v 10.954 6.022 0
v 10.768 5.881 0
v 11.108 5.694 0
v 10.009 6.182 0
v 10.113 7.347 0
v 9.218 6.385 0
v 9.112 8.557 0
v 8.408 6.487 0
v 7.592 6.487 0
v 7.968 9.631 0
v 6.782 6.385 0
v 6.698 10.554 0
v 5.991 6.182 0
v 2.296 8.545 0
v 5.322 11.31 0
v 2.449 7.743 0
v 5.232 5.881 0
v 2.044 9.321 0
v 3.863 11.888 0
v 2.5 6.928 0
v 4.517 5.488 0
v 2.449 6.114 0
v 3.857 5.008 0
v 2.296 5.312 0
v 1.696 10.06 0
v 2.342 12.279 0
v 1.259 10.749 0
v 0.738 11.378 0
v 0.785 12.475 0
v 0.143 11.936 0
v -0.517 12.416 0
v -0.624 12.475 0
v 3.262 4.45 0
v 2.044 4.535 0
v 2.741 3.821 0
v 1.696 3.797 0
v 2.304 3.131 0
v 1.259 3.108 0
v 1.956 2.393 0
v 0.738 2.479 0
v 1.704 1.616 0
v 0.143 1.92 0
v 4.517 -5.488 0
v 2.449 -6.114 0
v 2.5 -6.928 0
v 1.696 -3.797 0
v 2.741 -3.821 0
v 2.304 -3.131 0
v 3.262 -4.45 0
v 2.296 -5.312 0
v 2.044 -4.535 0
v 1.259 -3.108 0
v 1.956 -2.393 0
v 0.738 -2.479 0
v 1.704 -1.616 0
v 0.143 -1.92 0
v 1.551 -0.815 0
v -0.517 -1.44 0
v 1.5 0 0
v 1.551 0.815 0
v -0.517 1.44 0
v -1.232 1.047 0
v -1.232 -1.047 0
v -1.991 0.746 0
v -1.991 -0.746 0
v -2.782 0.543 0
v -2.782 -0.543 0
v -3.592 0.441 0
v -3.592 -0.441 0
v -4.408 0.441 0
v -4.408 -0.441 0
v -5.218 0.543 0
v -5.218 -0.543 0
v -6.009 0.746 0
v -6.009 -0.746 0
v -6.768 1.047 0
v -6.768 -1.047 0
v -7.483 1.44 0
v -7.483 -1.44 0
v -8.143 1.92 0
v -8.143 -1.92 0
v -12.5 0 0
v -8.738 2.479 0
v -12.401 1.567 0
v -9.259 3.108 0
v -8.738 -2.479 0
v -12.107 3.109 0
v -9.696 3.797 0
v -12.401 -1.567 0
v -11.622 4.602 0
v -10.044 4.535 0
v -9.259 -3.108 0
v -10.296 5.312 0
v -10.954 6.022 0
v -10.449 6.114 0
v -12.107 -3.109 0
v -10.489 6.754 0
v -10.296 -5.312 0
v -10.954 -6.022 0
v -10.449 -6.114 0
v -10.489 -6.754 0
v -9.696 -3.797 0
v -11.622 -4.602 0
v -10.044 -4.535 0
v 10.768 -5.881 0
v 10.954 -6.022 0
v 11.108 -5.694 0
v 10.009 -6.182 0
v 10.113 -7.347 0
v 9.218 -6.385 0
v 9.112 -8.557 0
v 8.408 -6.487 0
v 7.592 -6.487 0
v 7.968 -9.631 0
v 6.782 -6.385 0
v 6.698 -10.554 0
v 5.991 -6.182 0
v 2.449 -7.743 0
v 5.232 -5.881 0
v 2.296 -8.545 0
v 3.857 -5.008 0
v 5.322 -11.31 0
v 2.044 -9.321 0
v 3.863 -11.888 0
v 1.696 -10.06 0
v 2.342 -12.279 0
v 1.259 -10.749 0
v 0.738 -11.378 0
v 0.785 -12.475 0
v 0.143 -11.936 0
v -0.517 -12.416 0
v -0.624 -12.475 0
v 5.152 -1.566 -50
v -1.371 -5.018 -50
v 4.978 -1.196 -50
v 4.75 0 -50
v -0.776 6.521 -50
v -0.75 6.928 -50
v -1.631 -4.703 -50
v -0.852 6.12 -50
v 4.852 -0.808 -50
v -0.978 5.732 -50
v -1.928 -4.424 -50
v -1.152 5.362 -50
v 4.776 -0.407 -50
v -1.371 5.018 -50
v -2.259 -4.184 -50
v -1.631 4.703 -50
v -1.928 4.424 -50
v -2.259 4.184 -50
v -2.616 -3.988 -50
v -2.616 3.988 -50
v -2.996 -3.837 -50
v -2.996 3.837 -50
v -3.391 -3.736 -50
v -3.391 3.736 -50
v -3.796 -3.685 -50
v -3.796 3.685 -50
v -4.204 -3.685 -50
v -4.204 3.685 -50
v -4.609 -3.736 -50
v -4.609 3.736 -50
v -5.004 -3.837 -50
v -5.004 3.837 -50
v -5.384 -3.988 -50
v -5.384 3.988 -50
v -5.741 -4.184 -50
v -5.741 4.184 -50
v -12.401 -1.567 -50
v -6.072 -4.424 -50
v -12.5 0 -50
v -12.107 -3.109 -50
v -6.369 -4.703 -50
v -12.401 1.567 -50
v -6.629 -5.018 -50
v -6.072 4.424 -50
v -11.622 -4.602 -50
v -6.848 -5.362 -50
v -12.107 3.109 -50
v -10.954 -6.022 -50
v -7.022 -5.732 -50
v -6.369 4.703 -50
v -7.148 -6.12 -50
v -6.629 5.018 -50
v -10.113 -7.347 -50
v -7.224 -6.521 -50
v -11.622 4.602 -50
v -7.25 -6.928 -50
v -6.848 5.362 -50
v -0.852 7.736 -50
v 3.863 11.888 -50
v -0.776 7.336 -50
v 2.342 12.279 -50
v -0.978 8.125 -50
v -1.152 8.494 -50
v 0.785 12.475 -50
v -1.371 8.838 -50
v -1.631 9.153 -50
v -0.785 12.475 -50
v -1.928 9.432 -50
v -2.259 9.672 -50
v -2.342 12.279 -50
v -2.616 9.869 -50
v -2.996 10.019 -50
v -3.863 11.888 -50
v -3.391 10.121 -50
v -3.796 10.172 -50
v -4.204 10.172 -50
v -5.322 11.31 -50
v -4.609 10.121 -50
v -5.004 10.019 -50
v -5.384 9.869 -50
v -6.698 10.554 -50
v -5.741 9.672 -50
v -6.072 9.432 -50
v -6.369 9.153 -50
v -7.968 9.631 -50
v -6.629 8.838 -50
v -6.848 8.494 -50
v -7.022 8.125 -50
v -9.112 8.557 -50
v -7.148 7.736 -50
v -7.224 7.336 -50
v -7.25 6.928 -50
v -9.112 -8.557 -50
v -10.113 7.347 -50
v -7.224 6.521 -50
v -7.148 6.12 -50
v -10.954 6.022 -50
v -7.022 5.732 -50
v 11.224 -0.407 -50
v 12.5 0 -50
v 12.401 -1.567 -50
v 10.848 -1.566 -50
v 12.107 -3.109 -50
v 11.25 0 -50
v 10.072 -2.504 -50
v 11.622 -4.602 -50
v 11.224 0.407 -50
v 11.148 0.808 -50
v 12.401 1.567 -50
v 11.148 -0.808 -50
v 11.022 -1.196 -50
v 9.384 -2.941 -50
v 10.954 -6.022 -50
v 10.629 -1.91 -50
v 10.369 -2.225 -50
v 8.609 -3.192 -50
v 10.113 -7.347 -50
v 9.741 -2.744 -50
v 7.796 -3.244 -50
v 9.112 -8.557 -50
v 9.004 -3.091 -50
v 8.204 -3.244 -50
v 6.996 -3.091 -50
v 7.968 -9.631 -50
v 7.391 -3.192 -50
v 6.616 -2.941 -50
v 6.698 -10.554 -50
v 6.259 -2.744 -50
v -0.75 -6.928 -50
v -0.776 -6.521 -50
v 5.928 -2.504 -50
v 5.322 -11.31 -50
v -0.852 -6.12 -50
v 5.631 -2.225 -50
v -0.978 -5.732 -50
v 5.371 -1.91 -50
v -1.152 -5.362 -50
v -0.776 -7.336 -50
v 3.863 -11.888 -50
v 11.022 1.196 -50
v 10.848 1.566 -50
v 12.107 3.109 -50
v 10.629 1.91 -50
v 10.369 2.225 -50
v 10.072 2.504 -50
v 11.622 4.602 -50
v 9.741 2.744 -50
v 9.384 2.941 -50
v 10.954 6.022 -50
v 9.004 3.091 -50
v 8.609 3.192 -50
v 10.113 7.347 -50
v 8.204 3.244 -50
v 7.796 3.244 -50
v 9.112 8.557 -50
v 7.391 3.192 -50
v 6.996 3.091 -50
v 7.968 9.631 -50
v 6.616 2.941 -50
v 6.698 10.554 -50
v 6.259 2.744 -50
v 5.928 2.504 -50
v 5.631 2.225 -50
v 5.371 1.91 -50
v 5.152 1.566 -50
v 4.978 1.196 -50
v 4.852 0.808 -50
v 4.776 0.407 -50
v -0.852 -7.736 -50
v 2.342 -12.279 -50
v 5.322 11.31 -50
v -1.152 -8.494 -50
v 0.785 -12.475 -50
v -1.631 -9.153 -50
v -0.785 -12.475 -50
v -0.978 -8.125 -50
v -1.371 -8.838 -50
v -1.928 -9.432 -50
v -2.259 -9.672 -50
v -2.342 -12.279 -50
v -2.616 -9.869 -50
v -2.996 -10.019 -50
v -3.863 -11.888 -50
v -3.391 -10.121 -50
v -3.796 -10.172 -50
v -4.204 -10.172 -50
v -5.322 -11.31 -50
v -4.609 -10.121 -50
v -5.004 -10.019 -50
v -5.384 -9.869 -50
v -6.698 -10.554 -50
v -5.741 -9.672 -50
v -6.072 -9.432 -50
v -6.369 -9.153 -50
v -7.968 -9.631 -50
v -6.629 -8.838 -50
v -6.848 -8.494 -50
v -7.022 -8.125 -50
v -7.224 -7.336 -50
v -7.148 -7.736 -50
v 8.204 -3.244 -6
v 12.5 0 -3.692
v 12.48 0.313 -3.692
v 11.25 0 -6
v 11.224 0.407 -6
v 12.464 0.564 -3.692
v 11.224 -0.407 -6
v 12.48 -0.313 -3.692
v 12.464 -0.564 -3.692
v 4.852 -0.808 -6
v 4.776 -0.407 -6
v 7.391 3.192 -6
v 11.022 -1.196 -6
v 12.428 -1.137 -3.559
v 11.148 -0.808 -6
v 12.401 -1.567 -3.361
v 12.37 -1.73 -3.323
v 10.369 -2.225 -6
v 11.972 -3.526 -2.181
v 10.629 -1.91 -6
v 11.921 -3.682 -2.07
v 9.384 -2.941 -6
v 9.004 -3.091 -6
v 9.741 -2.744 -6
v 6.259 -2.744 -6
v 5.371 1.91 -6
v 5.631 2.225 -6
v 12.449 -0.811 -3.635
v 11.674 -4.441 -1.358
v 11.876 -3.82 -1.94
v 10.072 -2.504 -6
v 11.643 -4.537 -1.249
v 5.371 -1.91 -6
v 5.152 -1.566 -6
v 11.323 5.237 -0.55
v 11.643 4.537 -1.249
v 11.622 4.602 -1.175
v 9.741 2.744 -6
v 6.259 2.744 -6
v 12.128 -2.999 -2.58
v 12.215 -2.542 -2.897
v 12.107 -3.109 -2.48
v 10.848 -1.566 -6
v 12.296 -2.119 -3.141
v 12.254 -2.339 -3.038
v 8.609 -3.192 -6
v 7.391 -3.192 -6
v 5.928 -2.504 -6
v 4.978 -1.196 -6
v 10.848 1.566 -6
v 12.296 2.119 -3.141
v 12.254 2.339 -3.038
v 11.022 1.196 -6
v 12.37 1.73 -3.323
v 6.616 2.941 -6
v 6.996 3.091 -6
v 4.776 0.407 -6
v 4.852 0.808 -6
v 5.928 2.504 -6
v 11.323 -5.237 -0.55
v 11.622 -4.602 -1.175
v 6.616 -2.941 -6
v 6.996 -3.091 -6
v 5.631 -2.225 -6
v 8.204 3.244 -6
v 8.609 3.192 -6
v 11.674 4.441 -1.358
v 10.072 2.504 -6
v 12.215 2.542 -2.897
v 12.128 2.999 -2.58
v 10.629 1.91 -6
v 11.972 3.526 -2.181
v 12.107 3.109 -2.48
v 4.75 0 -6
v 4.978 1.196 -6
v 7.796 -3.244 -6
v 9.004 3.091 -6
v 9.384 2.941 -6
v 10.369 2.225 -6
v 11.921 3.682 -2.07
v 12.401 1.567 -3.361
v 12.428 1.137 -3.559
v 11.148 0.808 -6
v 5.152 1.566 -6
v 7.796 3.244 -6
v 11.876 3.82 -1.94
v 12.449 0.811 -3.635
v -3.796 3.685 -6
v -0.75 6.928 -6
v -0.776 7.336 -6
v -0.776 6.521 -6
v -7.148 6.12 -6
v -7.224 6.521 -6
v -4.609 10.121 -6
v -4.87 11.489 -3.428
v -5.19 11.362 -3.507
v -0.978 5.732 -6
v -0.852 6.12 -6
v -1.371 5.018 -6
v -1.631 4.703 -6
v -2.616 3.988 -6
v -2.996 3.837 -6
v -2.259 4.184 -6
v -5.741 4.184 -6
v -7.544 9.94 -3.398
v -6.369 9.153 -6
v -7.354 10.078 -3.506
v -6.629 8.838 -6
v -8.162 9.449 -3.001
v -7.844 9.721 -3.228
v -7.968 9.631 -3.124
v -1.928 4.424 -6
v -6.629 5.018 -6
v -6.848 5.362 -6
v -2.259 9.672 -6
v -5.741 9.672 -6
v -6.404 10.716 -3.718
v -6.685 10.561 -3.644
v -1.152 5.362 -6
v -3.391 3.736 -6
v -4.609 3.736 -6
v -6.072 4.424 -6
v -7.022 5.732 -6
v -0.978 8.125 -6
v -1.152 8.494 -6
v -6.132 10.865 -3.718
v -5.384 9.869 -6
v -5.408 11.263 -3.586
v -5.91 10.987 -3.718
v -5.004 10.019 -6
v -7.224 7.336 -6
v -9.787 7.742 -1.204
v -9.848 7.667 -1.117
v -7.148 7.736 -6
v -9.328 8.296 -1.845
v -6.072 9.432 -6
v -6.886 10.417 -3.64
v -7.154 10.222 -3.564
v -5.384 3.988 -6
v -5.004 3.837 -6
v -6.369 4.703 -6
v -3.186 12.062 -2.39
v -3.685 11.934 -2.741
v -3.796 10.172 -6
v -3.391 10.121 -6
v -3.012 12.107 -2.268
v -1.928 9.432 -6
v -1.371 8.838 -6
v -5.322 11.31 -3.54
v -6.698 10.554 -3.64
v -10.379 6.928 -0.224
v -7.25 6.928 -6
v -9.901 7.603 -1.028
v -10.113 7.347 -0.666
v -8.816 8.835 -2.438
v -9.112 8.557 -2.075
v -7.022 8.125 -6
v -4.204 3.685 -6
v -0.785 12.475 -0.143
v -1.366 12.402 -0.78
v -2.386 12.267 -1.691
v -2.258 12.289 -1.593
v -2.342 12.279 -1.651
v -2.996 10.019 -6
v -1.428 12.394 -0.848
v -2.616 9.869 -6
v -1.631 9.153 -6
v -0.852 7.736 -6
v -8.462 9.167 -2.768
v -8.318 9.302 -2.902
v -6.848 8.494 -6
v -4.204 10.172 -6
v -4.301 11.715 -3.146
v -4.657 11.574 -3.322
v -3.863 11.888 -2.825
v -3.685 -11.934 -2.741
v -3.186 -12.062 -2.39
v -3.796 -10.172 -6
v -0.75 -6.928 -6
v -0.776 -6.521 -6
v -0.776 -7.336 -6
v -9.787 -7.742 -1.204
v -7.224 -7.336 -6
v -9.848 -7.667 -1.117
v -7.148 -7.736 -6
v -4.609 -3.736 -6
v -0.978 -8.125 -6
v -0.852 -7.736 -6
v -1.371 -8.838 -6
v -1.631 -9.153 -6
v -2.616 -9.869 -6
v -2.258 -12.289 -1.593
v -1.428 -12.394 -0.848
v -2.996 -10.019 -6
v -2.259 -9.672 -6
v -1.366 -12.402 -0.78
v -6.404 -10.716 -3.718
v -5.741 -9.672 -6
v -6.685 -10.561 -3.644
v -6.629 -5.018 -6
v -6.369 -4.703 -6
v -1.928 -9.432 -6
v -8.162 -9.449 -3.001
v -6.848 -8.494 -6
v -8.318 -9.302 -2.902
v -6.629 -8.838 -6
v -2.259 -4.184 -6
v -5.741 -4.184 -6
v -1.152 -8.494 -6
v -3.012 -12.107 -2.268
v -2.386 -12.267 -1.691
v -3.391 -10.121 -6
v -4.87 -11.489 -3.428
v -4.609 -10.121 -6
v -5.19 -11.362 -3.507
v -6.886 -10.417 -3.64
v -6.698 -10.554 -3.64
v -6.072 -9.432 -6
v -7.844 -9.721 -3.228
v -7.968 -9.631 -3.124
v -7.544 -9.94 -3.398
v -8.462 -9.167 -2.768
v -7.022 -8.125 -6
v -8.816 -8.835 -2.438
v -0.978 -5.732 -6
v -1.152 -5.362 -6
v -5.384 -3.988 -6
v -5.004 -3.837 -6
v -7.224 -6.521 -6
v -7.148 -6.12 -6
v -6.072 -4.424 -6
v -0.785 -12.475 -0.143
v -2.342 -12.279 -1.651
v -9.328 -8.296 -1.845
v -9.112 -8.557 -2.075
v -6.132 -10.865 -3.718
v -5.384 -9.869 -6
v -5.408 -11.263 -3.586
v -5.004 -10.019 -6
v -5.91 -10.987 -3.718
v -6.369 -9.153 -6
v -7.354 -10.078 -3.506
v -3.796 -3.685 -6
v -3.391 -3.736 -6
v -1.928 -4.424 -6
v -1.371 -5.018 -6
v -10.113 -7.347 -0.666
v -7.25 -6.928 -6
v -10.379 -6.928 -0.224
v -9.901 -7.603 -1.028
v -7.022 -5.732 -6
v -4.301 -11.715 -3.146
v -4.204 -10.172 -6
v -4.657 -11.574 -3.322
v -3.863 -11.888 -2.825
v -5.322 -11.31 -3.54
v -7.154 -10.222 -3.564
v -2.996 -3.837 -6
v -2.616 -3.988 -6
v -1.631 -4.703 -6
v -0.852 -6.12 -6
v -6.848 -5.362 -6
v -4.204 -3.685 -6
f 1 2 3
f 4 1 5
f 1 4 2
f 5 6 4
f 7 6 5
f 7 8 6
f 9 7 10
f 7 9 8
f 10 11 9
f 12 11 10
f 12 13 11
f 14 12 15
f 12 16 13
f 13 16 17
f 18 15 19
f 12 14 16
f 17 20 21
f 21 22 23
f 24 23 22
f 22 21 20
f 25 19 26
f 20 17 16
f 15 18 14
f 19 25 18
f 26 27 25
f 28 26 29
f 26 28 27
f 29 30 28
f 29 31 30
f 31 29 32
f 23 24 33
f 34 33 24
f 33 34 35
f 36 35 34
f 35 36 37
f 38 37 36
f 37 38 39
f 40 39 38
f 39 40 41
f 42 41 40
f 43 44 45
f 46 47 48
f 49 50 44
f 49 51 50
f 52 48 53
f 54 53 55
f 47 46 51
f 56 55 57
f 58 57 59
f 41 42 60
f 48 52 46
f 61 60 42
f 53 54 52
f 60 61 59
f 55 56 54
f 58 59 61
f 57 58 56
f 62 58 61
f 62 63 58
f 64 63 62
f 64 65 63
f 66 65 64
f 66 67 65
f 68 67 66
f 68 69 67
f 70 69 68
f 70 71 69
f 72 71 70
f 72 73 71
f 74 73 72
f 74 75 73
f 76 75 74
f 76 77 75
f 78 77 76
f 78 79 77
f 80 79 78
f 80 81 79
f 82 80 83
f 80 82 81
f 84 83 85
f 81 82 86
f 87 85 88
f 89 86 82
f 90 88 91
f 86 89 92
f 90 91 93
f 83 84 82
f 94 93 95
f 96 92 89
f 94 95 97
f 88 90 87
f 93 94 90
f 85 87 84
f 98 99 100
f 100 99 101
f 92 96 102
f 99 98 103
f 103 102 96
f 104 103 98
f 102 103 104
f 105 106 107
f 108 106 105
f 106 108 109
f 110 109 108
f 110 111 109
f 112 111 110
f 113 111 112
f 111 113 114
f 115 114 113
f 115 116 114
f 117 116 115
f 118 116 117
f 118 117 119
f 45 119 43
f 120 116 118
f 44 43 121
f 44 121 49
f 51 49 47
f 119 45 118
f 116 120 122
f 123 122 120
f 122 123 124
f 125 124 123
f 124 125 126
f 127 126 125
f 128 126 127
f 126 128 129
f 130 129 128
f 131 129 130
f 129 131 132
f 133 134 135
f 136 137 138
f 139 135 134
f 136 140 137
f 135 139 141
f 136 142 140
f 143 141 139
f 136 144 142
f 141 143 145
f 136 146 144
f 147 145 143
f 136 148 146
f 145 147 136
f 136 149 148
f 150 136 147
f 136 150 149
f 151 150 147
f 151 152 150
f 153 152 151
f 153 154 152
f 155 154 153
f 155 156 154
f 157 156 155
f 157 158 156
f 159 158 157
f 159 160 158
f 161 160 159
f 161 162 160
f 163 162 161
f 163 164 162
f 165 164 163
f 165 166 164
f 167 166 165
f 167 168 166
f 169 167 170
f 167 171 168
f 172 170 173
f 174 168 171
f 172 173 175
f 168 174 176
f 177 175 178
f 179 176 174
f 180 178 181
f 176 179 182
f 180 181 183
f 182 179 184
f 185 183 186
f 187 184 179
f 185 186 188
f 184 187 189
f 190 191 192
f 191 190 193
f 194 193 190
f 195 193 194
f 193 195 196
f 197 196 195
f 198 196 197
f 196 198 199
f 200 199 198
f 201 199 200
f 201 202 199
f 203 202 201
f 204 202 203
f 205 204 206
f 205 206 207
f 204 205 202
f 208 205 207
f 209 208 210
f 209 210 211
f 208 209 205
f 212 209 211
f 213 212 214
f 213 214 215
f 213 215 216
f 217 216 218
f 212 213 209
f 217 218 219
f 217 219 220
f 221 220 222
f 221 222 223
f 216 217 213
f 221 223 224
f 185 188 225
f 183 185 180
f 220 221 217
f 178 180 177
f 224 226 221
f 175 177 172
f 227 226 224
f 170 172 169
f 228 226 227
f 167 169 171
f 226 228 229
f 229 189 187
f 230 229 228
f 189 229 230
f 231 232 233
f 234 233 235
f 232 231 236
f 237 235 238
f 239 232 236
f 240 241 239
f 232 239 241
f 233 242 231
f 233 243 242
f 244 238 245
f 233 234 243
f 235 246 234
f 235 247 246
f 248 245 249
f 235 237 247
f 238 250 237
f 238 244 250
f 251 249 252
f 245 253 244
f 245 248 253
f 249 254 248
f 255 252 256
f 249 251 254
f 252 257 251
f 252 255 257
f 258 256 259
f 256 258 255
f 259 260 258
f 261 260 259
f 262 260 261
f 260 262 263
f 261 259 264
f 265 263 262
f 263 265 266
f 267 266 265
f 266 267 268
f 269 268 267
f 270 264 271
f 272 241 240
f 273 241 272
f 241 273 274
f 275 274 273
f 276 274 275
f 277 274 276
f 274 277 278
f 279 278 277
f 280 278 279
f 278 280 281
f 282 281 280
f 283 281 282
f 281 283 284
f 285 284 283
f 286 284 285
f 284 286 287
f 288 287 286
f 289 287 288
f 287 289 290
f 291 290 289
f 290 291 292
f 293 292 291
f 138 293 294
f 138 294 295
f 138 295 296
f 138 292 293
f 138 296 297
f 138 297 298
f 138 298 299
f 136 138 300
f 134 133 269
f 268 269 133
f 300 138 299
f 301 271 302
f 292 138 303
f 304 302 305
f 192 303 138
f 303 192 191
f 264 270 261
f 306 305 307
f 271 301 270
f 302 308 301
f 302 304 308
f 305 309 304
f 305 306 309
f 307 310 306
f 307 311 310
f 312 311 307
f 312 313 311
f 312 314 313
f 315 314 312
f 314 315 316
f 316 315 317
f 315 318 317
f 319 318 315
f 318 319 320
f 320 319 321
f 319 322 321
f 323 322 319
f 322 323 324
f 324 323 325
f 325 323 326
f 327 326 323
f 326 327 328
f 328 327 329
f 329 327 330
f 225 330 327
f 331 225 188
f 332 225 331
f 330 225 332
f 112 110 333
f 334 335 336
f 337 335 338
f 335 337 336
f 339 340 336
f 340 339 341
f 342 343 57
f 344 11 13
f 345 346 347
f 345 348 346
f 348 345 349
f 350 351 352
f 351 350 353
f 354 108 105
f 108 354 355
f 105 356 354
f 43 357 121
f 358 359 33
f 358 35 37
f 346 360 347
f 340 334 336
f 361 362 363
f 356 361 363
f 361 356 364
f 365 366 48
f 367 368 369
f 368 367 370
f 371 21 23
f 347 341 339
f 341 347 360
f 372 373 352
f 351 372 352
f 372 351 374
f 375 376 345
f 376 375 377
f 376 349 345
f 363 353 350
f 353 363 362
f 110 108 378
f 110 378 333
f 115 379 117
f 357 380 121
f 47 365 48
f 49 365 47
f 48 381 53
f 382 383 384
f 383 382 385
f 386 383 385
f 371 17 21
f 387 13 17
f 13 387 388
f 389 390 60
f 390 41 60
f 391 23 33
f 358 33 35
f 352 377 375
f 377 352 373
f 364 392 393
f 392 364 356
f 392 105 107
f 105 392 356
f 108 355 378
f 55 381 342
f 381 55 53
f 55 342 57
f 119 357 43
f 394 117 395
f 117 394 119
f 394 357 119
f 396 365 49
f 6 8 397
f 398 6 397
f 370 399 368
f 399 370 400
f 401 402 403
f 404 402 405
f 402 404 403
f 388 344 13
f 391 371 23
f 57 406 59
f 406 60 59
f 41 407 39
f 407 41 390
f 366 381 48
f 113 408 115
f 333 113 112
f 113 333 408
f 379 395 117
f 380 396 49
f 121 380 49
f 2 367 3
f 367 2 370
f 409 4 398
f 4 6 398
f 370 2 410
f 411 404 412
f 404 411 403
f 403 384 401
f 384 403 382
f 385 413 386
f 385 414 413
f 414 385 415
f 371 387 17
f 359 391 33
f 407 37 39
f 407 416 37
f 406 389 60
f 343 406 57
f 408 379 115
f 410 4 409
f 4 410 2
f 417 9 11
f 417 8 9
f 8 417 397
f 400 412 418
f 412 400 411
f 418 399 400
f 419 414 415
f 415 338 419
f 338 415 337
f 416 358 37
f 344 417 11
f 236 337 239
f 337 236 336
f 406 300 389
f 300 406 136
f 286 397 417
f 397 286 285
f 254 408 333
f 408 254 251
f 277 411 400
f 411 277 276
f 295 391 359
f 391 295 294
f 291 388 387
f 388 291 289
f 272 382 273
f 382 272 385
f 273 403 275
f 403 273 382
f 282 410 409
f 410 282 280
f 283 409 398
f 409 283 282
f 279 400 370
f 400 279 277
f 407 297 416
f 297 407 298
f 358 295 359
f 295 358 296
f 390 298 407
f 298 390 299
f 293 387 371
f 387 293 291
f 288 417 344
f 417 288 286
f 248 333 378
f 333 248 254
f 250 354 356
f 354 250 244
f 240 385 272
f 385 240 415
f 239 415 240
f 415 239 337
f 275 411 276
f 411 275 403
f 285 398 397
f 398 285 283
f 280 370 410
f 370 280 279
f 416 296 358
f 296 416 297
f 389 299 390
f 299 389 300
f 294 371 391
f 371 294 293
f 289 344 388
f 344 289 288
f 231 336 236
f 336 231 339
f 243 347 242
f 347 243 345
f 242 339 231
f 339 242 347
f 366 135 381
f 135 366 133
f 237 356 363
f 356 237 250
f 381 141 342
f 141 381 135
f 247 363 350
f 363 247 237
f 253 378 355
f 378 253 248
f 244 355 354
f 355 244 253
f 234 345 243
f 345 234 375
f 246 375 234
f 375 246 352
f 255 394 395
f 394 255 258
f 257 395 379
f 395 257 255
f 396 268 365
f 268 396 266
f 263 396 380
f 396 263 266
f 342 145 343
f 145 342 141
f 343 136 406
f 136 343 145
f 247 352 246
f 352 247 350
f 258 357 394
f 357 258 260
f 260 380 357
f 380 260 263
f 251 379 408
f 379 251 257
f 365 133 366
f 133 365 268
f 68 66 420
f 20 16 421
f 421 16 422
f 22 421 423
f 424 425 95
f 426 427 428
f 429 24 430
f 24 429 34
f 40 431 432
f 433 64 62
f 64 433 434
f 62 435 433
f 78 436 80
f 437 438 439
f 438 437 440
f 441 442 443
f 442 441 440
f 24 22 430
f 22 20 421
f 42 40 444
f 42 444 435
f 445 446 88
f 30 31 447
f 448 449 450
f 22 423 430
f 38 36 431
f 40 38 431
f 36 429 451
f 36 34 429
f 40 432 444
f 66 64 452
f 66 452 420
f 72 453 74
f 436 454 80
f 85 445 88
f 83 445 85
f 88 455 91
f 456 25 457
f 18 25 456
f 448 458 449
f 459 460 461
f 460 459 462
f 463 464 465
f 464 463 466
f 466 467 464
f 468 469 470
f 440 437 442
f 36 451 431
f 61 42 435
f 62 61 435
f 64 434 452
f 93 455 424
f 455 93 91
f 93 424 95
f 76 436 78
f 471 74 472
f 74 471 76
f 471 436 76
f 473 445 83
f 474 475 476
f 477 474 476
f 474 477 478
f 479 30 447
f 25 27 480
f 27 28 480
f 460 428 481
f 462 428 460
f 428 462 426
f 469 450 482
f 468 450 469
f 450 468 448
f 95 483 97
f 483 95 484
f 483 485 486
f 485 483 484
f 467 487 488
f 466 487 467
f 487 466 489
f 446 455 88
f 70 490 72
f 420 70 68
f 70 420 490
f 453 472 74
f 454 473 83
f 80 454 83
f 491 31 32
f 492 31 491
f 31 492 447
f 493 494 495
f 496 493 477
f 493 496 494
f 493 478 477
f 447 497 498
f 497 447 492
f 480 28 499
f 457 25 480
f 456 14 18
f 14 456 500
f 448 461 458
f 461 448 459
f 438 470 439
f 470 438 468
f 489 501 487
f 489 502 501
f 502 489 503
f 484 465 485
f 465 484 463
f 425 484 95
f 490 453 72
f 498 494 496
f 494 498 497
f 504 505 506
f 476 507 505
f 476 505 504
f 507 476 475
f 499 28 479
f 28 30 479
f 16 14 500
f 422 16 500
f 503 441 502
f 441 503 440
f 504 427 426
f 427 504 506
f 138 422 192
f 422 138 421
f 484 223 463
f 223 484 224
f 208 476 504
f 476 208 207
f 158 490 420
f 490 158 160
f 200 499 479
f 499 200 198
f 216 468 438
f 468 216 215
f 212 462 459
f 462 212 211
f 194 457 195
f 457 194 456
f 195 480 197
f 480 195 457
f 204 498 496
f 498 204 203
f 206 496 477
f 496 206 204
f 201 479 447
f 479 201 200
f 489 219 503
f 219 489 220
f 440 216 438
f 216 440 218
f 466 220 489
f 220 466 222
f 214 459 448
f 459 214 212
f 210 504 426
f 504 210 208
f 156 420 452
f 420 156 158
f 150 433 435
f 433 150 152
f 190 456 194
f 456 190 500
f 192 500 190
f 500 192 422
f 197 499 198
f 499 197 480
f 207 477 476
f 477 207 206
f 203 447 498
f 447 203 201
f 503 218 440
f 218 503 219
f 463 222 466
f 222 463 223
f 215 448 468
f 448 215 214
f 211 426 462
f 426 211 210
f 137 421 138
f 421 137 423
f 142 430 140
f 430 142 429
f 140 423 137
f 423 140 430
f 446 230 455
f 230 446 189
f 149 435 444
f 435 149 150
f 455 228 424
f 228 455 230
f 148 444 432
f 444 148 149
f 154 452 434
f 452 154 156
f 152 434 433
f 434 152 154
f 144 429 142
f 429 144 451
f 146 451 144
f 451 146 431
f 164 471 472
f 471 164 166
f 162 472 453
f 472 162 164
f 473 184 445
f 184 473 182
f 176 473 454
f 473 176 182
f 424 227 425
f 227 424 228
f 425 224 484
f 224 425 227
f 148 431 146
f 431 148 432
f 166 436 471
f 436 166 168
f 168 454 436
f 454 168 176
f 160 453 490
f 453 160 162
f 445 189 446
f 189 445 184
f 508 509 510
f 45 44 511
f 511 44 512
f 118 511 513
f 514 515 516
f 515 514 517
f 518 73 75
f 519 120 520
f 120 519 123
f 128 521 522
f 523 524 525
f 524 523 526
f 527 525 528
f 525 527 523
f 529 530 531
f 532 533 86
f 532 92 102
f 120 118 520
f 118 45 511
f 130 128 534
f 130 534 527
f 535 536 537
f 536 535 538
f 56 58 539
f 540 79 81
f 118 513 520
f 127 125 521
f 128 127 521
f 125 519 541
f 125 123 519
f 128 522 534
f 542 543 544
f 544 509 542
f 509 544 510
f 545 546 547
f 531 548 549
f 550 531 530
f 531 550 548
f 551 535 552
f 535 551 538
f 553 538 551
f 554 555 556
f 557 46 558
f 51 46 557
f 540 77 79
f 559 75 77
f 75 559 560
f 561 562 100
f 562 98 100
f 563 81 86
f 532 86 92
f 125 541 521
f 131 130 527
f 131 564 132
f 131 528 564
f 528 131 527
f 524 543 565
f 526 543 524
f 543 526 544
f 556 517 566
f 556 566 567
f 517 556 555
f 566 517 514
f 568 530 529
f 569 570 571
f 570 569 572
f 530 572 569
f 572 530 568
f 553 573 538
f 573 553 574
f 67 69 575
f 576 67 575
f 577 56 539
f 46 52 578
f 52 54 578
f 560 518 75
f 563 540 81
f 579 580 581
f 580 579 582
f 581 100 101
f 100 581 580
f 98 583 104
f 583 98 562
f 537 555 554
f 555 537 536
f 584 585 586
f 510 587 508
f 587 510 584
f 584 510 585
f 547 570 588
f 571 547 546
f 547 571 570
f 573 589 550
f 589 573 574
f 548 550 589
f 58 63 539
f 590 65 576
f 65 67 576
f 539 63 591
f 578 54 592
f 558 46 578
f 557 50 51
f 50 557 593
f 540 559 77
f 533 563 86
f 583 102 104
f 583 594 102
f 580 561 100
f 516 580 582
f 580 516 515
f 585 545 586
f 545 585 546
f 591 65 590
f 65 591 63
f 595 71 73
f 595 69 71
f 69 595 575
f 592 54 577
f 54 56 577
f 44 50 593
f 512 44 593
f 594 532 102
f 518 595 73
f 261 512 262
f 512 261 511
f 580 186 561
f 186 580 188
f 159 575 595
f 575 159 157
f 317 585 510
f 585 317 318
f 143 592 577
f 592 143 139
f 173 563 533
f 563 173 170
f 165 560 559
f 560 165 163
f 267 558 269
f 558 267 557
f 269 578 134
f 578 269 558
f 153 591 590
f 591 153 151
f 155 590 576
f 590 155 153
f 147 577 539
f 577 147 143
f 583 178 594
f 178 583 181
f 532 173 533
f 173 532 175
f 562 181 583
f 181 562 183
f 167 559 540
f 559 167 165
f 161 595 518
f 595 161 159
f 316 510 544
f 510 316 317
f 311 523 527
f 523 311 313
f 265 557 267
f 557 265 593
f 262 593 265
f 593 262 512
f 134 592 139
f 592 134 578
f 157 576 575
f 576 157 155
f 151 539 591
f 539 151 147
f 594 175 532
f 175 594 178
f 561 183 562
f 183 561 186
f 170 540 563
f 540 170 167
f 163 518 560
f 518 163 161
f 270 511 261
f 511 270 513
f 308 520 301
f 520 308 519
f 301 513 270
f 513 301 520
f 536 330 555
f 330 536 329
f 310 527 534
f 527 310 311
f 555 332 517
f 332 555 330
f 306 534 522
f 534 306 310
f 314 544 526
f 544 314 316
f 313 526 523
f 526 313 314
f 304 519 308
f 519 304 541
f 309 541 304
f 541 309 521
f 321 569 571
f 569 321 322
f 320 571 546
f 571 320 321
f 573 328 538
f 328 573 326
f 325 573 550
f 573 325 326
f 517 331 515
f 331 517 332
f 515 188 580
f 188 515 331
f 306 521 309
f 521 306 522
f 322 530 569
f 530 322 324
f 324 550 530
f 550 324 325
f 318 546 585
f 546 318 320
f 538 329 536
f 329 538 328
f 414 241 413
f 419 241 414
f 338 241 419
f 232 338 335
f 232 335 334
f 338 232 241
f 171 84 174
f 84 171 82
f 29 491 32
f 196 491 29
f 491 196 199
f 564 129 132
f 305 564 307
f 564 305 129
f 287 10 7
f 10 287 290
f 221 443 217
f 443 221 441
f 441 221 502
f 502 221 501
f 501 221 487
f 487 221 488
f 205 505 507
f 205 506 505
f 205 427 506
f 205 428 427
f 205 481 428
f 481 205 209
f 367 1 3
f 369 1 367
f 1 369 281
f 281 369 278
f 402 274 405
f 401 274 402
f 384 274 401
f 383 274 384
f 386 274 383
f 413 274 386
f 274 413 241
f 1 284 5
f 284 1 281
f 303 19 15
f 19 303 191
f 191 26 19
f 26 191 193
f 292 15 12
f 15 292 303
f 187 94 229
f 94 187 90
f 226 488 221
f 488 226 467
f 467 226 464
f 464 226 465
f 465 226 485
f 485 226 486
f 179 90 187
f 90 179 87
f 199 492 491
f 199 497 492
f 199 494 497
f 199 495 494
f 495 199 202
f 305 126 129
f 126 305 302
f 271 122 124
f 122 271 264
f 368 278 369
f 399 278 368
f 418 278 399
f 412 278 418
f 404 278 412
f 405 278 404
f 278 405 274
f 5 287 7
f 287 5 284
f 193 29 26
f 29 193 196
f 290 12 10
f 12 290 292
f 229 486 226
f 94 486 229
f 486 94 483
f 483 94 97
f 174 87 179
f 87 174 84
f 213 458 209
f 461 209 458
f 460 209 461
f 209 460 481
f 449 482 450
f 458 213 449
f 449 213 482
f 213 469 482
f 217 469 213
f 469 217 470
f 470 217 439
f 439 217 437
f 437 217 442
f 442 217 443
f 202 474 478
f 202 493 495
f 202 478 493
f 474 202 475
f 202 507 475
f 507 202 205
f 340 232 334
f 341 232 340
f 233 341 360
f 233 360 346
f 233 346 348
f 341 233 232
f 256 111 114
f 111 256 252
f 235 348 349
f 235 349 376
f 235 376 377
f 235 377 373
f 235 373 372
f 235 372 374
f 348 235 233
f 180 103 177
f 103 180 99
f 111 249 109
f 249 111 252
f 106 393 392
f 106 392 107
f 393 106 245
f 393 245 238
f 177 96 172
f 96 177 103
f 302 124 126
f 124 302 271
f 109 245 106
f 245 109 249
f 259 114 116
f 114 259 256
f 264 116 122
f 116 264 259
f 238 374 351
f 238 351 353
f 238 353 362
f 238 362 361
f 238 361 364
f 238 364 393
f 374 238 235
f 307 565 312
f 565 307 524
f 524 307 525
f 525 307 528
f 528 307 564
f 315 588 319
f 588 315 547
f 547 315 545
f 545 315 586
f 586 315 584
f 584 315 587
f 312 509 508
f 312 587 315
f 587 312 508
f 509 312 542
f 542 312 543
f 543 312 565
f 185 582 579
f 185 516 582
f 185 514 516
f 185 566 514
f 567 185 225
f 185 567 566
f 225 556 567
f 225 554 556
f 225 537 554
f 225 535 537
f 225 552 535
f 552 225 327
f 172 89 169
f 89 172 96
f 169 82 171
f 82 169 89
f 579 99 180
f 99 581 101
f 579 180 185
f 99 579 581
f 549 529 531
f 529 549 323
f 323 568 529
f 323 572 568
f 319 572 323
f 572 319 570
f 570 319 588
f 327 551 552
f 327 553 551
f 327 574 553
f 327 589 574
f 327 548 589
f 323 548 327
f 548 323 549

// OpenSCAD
$fn = 50;


difference() {
	union() {
		translate(v = [0, 0, -50.0000000000]) {
			cylinder(h = 50, r = 12.5000000000);
		}
	}
	union() {
		translate(v = [8.0000000000, 0.0000000000, 0]) {
			rotate(a = [0, 0, 0]) {
				difference() {
					union() {
						#translate(v = [0, 0, -50.0000000000]) {
							cylinder(h = 50, r = 2.2500000000);
						}
						#translate(v = [0, 0, -6]) {
							cylinder(h = 6, r = 12.5000000000, r1 = 3.2500000000, r2 = 6.5000000000);
						}
						#translate(v = [0, 0, -50.0000000000]) {
							cylinder(h = 50, r = 3.2500000000);
						}
						#translate(v = [0, 0, -50.0000000000]) {
							cylinder(h = 50, r = 2.2500000000);
						}
					}
					union();
				}
			}
		}
		translate(v = [-4.0000000000, 6.9282032303, 0]) {
			rotate(a = [0, 0, 0]) {
				difference() {
					union() {
						#translate(v = [0, 0, -50.0000000000]) {
							cylinder(h = 50, r = 2.2500000000);
						}
						#translate(v = [0, 0, -6]) {
							cylinder(h = 6, r = 12.5000000000, r1 = 3.2500000000, r2 = 6.5000000000);
						}
						#translate(v = [0, 0, -50.0000000000]) {
							cylinder(h = 50, r = 3.2500000000);
						}
						#translate(v = [0, 0, -50.0000000000]) {
							cylinder(h = 50, r = 2.2500000000);
						}
					}
					union();
				}
			}
		}
		translate(v = [-4.0000000000, -6.9282032303, 0]) {
			rotate(a = [0, 0, 0]) {
				difference() {
					union() {
						#translate(v = [0, 0, -50.0000000000]) {
							cylinder(h = 50, r = 2.2500000000);
						}
						#translate(v = [0, 0, -6]) {
							cylinder(h = 6, r = 12.5000000000, r1 = 3.2500000000, r2 = 6.5000000000);
						}
						#translate(v = [0, 0, -50.0000000000]) {
							cylinder(h = 50, r = 3.2500000000);
						}
						#translate(v = [0, 0, -50.0000000000]) {
							cylinder(h = 50, r = 2.2500000000);
						}
					}
					union();
				}
			}
		}
	}
}
